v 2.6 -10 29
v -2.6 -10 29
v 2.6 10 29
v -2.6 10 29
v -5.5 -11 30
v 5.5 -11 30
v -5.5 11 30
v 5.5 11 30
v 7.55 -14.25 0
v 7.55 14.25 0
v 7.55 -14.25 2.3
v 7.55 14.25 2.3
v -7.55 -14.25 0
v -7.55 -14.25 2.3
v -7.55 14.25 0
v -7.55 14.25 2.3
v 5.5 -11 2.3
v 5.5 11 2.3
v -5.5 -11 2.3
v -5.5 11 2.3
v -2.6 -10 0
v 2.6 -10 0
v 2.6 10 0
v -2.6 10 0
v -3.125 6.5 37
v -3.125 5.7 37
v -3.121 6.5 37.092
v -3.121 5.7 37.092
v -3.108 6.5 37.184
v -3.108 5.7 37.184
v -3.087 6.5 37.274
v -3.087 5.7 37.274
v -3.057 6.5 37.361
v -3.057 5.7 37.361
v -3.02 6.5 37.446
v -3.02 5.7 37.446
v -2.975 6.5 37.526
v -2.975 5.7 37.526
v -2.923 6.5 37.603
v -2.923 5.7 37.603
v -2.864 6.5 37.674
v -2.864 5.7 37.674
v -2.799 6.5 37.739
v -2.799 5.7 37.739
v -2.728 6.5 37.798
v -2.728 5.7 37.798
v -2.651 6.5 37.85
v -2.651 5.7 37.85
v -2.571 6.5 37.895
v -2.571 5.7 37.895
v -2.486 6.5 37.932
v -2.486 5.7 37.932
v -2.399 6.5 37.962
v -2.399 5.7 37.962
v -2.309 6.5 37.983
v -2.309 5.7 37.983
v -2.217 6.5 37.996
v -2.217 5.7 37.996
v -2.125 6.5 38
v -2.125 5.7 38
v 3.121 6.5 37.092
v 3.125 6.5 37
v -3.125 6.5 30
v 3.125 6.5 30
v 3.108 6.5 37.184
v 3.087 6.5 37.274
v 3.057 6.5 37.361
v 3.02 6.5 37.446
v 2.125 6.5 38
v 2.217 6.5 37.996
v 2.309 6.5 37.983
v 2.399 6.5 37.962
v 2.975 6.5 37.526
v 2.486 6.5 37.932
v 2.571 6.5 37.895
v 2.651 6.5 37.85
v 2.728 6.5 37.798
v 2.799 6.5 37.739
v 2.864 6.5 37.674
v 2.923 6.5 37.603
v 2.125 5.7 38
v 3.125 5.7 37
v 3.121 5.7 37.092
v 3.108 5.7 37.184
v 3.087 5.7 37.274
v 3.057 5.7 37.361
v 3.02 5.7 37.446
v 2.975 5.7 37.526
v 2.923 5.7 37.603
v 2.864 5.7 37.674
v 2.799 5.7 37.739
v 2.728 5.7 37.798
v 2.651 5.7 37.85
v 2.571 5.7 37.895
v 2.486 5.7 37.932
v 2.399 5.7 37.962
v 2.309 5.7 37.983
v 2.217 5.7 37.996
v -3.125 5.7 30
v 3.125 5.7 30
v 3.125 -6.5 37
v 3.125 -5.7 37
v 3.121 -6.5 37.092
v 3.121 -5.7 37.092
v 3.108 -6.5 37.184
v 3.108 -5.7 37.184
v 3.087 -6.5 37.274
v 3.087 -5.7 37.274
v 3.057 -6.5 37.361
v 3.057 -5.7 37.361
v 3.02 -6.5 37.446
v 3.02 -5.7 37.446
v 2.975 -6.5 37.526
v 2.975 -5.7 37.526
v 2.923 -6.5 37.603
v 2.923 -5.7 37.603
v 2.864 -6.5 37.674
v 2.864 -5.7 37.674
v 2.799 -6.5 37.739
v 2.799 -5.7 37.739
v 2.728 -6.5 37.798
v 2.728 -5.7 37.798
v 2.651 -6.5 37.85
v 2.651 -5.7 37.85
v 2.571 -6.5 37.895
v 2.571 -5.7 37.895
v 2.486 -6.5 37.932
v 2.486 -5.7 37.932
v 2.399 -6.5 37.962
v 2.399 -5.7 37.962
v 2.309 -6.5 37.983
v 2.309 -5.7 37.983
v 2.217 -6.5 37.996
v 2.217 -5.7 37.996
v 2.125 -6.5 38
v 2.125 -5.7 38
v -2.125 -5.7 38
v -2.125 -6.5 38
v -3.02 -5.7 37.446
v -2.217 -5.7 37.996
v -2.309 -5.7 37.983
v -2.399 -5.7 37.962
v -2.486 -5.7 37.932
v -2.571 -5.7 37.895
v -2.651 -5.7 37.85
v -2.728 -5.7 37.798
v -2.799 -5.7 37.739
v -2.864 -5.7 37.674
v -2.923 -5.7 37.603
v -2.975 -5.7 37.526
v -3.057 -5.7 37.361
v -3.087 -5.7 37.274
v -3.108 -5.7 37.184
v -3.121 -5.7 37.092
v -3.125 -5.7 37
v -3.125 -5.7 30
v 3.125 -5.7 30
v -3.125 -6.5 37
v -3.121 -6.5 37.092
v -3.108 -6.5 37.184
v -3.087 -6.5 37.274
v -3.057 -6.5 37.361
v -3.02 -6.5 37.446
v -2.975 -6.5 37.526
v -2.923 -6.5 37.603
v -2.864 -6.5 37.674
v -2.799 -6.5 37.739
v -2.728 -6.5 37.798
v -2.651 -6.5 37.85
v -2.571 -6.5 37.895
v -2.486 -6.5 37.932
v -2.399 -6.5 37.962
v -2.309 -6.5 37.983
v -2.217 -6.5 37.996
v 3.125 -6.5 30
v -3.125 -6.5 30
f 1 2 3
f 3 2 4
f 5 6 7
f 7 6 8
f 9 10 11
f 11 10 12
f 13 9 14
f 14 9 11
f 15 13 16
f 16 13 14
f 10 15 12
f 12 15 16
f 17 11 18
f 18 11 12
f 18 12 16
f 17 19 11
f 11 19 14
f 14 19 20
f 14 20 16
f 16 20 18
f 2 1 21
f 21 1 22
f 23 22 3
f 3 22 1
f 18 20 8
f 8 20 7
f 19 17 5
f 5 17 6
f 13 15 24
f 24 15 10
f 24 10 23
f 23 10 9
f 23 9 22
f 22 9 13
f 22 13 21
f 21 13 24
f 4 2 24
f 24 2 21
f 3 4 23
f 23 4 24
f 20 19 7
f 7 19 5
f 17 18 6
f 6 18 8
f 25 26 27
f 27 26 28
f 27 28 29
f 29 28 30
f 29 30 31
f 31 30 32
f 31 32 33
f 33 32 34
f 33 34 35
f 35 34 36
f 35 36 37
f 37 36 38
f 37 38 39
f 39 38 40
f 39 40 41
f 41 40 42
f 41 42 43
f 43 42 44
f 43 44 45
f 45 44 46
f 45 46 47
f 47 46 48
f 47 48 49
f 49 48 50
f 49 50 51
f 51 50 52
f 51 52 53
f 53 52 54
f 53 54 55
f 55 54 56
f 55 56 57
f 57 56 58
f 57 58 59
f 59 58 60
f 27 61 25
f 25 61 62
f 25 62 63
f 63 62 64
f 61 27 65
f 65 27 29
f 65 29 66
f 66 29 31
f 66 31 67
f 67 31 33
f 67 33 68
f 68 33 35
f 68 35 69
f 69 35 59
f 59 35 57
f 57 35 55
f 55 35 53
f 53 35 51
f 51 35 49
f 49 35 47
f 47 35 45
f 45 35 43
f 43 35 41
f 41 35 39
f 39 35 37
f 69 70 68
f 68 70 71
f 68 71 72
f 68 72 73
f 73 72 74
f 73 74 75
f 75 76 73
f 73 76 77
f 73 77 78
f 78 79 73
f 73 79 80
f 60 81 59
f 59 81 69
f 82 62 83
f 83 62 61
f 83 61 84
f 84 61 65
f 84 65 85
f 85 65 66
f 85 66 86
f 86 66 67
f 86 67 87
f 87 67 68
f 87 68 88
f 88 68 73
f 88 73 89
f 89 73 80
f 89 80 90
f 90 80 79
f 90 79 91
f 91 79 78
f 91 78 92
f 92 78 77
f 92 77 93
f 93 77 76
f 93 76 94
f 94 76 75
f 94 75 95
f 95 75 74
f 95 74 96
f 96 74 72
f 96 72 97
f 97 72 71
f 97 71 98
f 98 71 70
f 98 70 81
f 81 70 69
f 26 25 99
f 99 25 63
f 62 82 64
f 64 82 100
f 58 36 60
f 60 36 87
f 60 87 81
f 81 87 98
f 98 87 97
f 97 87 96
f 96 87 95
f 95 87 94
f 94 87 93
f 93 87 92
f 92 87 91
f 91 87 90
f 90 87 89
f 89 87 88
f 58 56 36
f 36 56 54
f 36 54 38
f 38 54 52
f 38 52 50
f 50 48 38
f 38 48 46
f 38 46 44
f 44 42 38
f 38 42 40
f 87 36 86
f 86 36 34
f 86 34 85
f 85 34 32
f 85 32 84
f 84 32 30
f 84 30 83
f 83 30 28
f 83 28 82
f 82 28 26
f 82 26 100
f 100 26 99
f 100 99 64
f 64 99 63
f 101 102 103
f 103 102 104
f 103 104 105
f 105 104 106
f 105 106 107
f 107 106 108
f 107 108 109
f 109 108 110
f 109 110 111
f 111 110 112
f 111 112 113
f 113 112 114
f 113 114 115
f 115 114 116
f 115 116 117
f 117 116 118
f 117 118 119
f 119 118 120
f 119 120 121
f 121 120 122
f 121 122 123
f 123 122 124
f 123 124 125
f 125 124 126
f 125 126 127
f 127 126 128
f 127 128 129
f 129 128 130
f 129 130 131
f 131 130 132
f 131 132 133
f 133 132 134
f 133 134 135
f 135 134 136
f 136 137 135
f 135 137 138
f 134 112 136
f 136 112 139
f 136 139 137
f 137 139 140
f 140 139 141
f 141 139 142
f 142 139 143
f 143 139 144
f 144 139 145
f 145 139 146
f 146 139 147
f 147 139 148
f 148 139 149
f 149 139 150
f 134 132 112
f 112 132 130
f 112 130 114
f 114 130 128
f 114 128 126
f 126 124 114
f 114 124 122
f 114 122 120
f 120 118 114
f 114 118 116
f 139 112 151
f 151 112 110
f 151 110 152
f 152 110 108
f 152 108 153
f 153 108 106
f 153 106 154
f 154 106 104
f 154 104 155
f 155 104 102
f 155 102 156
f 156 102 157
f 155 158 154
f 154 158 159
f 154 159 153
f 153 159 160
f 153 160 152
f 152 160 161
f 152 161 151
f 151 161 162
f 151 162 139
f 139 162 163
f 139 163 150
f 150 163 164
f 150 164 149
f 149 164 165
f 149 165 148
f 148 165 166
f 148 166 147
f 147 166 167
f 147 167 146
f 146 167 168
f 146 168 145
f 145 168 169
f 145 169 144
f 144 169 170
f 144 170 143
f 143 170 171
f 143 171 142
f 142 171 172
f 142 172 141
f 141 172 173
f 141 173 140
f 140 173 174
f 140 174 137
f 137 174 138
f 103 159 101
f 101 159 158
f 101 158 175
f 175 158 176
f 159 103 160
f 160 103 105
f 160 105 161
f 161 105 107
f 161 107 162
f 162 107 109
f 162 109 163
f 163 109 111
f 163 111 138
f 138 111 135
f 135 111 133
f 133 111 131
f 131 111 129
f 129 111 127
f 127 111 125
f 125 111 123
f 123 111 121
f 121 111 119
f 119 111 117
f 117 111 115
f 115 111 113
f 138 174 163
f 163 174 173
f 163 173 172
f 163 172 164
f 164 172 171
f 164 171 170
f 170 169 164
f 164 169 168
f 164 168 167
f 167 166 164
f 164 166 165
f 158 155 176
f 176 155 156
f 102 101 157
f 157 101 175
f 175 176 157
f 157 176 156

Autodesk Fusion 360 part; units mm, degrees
sketch "Sketch1" plane through (0, 0, 0) normal (0, 0, 1) x (1, 0, 0)
  line L0 (7.55, -14.25) -> (-7.55, -14.25)
  line L1 (-7.55, -14.25) -> (-7.55, 14.25)
  line L2 (-7.55, 14.25) -> (7.55, 14.25)
  line L3 (7.55, 14.25) -> (7.55, -14.25)
  line L4 (7.55, -14.25) -> (-7.55, 14.25) construction
  line L5 (-7.55, -14.25) -> (7.55, 14.25) construction
  line L6 (5.5, 11) -> (-5.5, 11)
  line L7 (-5.5, 11) -> (-5.5, -11)
  line L8 (-5.5, -11) -> (5.5, -11)
  line L9 (5.5, -11) -> (5.5, 11)
  line L10 (5.5, 11) -> (-5.5, -11) construction
  line L11 (-5.5, 11) -> (5.5, -11) construction
  line L12 (2.6, -10) -> (-2.6, -10)
  line L13 (-2.6, -10) -> (-2.6, 10)
  line L14 (-2.6, 10) -> (2.6, 10)
  line L15 (2.6, 10) -> (2.6, -10)
  line L16 (2.6, -10) -> (-2.6, 10) construction
  line L17 (-2.6, -10) -> (2.6, 10) construction
  line L18 (5.95, -5.8) -> (-5.95, -5.8)
  line L19 (-5.95, -5.8) -> (-5.95, 5.8)
  line L20 (-5.95, 5.8) -> (5.95, 5.8)
  line L21 (5.95, 5.8) -> (5.95, -5.8)
  line L22 (5.95, -5.8) -> (-5.95, 5.8) construction
  line L23 (-5.95, -5.8) -> (5.95, 5.8) construction
  dimension "d3" = 15.1
  dimension "d4" = 28.5
  dimension "d5" = 11
  dimension "d6" = 22
  dimension "d7" = 5.2
  dimension "d8" = 20
  dimension "d9" = 11.9
  dimension "d10" = 11.6
extrude "Extrude2" add sketch "Sketch1" along normal blind 29 contours L6 L7 L9 L13 L14 L15 L20 | L9 L15 L18 L20 | L7 L13 L18 L20 | L7 L8 L9 L12 L13 L15 L18 makes body 1
extrude "Extrude1" add sketch "Sketch1" along normal blind 2.3 contours L0 L1 L2 L3 | L6 L7 L9 L13 L14 L15 L20 | L9 L18 L20 L21 | L7 L18 L19 L20 | L7 L8 L9 L12 L13 L15 L18 bodies 1
sketch "Sketch2" plane through (0, 0, 29) normal (0, 0, 1) x (-1, 0, 0)
  line L0 (2.6, -10) -> (-2.6, -10)
  line L1 (-2.6, -10) -> (-2.6, 10)
  line L2 (-2.6, 10) -> (2.6, 10)
  line L3 (2.6, 10) -> (2.6, -10)
  line L4 (-5.5, 11) -> (-5.5, -11)
  line L5 (-5.5, -11) -> (5.5, -11)
  line L6 (5.5, -11) -> (5.5, 11)
  line L7 (5.5, 11) -> (-5.5, 11)
  line L8 (5.5, -11) -> (-5.5, -11)
  line L9 (-5.5, -11) -> (-5.5, 11)
  line L10 (-5.5, 11) -> (5.5, 11)
  line L11 (5.5, 11) -> (5.5, -11)
extrude "Extrude4" add sketch "Sketch2" along normal blind 1 contours L0 L1 L2 L3 | L4 L5 L6 L7 L8 L9 L10 L11 bodies 1
sketch "Sketch3" plane through (0, 0, 30) normal (0, 0, 1) x (-1, 0, 0)
  line L0 (5.5, 11) -> (-5.5, 11)
  line L1 (-5.5, 11) -> (-5.5, -11)
  line L2 (-5.5, -11) -> (5.5, -11)
  line L3 (5.5, -11) -> (5.5, 11)
  line L4 (3.125, -6.5) -> (-3.125, -6.5)
  line L5 (-3.125, -6.5) -> (-3.125, -5.7)
  line L6 (-3.125, -5.7) -> (3.125, -5.7)
  line L7 (3.125, -5.7) -> (3.125, -6.5)
  line L8 (3.125, 5.7) -> (-3.125, 5.7)
  line L9 (-3.125, 5.7) -> (-3.125, 6.5)
  line L10 (-3.125, 6.5) -> (3.125, 6.5)
  line L11 (3.125, 6.5) -> (3.125, 5.7)
  line L12 (-1.75, 0) -> (-22.5, 0)
  line L13 (0, -1.75) -> (0, -22.5)
  dimension "d19" = 0.8
  dimension "d20" = 0.8
  dimension "d21" = 13
  dimension "d22" = 6.25
  dimension "d23" = 6.25
extrude "Extrude5" add sketch "Sketch3" along normal blind 8 separate body contours L4 L5 L6 L13 | L4 L6 L7 L13 | L8 L9 L10 L11 makes body 2 at (-1.0417, 6.5, 32.6667) makes body 3 at (-1.0417, -5.7, 32.6667)
fillet "Fillet1" radius 1 4 edges at (3.125, 6.1, 38) (-3.125, 6.1, 38) (-3.125, -6.1, 38) (3.125, -6.1, 38) on bodies 2 3
